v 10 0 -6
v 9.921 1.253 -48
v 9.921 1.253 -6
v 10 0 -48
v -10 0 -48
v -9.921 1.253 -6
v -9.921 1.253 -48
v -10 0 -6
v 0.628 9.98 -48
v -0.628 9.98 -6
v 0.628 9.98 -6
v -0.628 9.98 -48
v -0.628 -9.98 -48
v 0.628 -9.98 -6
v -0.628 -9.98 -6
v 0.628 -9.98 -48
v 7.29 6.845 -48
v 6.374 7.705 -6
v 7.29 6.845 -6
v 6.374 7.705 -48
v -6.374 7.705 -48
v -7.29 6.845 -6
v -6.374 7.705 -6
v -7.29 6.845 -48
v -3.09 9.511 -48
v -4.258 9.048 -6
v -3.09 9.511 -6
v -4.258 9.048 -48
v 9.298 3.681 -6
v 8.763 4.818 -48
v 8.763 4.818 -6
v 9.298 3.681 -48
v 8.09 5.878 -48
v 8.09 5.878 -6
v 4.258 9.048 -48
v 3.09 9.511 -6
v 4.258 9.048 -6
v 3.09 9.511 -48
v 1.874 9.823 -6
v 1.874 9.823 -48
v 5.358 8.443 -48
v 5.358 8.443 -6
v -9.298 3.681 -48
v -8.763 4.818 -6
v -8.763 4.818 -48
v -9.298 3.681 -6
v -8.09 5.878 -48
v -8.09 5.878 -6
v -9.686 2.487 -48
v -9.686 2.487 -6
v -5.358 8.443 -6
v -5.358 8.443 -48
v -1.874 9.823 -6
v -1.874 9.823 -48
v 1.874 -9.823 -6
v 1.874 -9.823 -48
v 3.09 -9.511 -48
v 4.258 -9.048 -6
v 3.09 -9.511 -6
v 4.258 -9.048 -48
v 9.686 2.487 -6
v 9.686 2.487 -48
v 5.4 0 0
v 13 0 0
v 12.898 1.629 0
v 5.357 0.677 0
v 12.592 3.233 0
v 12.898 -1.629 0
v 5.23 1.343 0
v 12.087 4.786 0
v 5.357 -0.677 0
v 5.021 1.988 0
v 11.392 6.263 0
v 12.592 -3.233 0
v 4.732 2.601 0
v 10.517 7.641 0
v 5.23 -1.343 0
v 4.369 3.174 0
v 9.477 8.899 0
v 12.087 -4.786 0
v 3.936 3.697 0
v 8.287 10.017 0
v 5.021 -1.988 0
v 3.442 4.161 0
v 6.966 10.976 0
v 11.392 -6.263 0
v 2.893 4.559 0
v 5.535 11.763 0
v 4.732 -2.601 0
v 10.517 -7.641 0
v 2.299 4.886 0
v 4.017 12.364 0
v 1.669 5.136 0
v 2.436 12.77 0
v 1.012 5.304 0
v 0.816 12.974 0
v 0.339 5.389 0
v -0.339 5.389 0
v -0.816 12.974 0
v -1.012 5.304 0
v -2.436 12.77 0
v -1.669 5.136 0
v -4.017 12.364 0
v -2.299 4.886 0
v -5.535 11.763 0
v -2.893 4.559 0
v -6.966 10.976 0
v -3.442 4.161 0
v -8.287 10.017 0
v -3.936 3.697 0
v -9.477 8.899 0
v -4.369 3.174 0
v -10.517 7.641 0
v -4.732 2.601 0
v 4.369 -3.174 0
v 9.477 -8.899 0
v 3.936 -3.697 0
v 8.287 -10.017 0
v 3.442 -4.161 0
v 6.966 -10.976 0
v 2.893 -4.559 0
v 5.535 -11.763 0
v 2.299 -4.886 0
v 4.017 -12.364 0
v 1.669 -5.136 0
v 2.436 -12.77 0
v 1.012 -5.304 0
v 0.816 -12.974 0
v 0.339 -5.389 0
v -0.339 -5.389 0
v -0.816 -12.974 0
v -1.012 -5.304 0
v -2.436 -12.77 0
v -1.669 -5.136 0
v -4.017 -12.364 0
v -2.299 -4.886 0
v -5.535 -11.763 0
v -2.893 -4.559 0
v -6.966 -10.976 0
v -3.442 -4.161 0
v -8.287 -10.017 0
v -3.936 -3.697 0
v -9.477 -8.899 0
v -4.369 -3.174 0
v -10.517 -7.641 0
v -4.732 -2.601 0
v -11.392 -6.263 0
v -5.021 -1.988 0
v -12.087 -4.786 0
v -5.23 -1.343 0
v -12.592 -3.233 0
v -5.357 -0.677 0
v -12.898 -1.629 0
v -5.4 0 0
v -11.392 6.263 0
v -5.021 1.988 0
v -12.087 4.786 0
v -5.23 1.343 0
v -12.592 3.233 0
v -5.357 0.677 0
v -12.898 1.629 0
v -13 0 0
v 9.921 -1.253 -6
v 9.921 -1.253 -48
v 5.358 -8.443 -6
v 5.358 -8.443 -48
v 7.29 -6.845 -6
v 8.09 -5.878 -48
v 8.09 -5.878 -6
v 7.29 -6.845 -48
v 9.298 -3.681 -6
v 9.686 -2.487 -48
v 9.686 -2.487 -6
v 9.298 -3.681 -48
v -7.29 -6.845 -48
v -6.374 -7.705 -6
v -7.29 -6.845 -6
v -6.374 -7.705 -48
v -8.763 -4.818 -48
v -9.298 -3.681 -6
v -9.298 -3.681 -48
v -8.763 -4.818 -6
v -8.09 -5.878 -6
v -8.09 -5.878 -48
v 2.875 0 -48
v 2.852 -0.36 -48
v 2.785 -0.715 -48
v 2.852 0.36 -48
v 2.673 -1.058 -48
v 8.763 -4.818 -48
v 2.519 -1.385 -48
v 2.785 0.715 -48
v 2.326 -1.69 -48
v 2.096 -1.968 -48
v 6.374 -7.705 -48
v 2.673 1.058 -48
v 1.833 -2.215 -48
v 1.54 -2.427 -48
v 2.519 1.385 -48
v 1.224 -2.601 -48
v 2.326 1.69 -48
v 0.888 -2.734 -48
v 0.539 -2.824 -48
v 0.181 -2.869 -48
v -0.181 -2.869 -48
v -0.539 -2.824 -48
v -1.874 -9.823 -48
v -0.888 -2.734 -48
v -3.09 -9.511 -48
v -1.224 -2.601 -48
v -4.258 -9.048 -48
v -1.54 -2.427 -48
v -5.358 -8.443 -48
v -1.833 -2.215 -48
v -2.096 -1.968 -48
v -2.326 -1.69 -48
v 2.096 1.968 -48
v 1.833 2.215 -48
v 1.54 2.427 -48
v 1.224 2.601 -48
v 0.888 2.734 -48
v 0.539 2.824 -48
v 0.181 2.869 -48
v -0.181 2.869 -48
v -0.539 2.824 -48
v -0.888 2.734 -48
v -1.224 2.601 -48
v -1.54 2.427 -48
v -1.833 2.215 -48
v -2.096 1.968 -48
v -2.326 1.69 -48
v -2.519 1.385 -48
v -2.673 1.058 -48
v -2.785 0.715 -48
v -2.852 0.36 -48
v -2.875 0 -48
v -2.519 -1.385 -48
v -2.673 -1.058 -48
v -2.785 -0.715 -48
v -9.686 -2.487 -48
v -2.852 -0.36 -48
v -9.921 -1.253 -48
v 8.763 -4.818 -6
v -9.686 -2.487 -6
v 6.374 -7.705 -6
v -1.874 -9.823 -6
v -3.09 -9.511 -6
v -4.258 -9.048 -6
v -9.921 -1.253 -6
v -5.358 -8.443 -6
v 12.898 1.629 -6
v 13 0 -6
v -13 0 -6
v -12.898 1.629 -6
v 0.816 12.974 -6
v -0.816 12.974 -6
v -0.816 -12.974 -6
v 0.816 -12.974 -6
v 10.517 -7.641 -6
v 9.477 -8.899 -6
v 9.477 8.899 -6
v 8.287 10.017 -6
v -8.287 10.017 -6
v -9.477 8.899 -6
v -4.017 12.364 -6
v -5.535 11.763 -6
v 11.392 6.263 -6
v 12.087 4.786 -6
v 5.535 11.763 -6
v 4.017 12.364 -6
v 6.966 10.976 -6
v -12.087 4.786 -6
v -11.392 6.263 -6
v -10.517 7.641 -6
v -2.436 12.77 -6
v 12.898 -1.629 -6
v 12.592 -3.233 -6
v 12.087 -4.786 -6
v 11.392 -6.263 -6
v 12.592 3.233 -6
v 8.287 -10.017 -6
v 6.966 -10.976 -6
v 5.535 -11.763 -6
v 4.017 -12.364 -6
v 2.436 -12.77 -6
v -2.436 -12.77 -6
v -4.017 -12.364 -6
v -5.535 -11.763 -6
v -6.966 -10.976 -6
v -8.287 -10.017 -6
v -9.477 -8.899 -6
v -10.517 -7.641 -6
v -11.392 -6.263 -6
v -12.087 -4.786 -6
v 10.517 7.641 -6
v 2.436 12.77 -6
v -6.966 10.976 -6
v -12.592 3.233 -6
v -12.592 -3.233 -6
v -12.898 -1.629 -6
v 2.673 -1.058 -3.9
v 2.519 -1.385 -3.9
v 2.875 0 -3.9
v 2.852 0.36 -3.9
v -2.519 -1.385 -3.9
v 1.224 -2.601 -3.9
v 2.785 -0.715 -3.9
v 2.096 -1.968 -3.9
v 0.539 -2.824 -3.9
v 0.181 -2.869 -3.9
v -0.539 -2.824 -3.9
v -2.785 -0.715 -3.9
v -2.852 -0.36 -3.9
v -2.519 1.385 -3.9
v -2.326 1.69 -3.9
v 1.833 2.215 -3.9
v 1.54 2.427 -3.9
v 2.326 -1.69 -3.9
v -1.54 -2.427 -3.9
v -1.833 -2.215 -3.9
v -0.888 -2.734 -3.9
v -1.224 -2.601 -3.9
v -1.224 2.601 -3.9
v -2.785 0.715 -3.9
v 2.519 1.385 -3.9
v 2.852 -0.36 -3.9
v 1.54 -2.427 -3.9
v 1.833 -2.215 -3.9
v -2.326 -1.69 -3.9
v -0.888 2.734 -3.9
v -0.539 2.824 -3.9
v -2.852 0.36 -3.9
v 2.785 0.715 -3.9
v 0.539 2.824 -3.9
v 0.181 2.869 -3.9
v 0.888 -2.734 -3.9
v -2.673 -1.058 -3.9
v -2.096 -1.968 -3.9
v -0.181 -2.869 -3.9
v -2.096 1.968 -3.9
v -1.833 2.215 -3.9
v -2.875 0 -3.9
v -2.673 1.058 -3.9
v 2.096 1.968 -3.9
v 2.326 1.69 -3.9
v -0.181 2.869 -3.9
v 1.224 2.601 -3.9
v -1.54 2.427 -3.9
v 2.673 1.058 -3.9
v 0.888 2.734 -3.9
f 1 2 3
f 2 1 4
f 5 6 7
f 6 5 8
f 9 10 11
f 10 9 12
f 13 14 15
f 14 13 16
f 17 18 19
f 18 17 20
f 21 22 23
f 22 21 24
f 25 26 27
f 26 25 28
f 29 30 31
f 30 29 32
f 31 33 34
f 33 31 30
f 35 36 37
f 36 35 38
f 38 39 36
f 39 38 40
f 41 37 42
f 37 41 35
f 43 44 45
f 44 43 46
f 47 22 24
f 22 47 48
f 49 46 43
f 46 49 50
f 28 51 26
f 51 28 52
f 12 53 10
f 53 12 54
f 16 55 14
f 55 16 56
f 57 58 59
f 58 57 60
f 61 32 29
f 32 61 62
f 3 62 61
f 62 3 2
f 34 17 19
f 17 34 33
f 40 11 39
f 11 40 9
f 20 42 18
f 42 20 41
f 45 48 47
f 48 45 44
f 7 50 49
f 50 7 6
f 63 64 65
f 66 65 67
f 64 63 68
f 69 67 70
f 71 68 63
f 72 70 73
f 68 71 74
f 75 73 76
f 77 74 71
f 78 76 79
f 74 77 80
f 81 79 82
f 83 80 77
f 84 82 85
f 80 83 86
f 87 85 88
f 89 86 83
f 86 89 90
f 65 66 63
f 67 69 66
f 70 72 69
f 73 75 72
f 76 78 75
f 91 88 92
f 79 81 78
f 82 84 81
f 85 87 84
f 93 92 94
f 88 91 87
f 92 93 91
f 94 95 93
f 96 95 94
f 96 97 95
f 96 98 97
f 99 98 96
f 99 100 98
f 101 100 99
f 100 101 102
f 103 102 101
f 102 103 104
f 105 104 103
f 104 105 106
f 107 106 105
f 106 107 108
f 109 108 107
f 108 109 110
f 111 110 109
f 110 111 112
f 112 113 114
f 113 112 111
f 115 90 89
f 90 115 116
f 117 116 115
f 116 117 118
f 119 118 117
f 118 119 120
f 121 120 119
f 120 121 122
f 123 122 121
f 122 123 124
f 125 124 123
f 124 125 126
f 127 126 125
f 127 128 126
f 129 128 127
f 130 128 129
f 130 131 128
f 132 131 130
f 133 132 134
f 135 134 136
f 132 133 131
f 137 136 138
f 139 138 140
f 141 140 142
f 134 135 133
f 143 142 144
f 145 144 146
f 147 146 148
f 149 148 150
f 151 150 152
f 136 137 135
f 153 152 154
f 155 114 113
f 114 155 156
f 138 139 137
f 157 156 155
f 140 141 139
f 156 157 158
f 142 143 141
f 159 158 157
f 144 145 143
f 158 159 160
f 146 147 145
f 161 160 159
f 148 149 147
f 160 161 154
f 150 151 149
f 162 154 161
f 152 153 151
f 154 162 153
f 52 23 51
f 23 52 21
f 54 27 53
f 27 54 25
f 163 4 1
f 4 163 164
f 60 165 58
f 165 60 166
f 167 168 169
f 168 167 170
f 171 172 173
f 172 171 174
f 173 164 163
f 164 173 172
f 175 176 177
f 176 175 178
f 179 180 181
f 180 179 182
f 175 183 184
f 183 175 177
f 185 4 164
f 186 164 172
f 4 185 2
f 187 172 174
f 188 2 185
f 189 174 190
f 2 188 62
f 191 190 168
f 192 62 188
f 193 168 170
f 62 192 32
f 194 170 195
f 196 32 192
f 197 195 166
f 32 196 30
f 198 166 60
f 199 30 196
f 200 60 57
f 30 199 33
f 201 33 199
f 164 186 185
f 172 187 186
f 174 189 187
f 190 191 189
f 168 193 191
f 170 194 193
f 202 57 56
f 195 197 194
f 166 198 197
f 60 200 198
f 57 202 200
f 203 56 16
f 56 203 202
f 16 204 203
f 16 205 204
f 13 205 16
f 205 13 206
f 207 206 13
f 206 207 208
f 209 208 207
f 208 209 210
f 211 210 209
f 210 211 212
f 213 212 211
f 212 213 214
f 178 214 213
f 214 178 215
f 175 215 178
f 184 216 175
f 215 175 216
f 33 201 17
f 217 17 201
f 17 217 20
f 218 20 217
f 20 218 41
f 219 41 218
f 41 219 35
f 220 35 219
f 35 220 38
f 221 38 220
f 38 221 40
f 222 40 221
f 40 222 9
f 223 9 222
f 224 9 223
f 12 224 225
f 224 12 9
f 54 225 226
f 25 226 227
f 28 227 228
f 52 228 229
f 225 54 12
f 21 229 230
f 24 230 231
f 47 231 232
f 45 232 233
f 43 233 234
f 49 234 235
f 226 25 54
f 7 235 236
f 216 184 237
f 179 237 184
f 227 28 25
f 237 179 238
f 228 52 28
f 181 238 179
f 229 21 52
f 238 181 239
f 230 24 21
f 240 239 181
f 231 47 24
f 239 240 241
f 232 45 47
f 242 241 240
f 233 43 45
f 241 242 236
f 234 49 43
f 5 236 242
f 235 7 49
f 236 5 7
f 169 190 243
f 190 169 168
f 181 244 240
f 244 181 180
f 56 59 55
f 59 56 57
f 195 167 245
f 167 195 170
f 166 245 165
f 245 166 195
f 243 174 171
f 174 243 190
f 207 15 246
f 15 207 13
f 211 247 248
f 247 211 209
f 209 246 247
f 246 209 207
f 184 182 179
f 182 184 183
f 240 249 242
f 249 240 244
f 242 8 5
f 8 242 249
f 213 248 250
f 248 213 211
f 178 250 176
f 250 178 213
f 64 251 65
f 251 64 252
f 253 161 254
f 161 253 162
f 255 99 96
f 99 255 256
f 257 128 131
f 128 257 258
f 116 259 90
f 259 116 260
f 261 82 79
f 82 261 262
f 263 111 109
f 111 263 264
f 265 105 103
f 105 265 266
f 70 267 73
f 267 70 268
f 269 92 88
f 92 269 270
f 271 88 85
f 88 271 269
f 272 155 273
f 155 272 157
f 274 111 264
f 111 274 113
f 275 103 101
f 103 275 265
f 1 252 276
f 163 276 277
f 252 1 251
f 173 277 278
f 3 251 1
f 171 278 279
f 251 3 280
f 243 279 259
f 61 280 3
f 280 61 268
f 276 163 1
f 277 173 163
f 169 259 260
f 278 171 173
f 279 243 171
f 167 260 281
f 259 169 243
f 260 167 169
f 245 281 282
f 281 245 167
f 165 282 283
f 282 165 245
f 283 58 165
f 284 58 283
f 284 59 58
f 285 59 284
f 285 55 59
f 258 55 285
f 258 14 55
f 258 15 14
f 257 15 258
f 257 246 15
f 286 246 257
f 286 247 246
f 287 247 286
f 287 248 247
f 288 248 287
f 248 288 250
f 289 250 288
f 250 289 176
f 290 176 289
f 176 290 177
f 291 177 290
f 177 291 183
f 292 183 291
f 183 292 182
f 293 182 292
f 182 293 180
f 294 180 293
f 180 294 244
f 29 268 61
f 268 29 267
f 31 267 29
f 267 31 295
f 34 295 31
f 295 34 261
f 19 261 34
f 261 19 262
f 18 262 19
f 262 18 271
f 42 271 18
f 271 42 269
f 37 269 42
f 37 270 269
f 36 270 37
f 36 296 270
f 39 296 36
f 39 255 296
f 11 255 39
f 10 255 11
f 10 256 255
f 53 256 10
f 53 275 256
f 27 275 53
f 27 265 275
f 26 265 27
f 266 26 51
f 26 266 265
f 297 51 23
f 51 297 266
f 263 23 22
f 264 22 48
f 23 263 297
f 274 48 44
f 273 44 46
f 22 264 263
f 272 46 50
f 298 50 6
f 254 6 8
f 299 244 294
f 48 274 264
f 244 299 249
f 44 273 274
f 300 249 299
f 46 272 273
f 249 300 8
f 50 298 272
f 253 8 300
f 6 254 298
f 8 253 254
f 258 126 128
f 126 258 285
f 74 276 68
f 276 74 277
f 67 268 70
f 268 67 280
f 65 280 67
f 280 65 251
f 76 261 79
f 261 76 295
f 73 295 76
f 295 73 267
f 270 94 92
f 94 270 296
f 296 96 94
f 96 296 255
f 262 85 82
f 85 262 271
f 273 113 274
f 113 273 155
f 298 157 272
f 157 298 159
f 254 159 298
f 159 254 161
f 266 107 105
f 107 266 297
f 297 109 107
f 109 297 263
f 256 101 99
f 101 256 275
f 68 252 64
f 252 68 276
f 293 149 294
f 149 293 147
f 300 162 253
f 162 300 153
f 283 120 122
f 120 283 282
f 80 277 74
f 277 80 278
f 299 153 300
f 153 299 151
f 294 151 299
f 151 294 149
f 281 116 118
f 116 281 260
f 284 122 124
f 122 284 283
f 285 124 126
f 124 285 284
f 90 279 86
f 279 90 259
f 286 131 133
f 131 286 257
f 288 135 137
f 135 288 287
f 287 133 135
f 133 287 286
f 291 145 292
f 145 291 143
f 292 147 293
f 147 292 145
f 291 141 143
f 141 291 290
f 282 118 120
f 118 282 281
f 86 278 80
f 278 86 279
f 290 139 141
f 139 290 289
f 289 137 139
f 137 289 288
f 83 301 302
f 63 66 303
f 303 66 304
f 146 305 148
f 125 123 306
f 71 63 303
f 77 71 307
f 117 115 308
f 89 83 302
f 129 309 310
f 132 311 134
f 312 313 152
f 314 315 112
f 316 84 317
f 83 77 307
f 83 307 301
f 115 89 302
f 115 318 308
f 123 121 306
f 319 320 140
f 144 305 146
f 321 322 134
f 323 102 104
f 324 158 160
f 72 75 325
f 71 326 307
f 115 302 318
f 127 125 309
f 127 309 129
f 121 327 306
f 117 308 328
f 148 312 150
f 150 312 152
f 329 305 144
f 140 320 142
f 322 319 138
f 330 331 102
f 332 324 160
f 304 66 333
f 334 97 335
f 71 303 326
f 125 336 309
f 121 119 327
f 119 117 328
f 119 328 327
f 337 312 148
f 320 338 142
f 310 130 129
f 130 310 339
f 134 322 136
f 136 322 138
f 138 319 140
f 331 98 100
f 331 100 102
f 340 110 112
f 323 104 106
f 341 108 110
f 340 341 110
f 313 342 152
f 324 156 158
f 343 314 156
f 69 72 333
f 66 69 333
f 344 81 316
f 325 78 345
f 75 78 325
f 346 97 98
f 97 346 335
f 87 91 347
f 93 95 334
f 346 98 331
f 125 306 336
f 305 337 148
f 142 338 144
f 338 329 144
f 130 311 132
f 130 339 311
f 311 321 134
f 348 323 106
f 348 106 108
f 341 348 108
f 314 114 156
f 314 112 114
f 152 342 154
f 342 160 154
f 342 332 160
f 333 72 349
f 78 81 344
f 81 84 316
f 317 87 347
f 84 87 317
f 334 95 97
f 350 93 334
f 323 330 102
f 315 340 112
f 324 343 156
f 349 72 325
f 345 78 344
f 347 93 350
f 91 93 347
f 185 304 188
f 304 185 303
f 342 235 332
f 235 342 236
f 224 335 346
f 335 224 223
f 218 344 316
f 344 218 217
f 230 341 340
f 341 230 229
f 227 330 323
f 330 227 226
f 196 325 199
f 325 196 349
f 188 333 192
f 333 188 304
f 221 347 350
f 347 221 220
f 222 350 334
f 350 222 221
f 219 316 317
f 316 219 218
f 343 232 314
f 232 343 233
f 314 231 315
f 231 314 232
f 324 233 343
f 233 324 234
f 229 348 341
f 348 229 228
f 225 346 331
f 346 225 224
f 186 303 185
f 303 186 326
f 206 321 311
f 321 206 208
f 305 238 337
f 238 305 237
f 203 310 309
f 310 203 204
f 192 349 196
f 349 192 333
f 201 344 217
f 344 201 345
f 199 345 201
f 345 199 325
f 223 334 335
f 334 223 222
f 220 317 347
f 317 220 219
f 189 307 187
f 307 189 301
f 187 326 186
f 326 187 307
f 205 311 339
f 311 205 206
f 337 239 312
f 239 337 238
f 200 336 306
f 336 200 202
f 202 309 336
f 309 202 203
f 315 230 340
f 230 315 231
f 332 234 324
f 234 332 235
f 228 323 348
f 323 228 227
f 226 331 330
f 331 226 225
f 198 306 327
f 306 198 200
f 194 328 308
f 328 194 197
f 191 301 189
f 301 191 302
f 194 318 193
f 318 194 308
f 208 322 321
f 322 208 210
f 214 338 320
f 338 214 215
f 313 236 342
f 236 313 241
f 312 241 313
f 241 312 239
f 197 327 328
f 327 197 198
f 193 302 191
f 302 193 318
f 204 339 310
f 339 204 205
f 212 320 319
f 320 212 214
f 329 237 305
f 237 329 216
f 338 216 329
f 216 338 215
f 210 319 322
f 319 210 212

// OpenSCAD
$fn = 50;


difference() {
	union() {
		translate(v = [0, 0, -48.0000000000]) {
			cylinder(h = 48, r = 10.0000000000);
		}
		translate(v = [0, 0, -6.0000000000]) {
			cylinder(h = 6, r = 13.0000000000);
		}
	}
	union() {
		translate(v = [0, 0, 0]) {
			rotate(a = [0, 0, 0]) {
				difference() {
					union() {
						#translate(v = [0, 0, -48.0000000000]) {
							cylinder(h = 48, r = 2.6000000000);
						}
						#translate(v = [0, 0, -3.9000000000]) {
							cylinder(h = 3.9000000000, r1 = 2.8750000000, r2 = 5.4000000000);
						}
						#translate(v = [0, 0, -48.0000000000]) {
							cylinder(h = 48, r = 2.8750000000);
						}
						#translate(v = [0, 0, -48.0000000000]) {
							cylinder(h = 48, r = 2.6000000000);
						}
					}
					union();
				}
			}
		}
	}
}
